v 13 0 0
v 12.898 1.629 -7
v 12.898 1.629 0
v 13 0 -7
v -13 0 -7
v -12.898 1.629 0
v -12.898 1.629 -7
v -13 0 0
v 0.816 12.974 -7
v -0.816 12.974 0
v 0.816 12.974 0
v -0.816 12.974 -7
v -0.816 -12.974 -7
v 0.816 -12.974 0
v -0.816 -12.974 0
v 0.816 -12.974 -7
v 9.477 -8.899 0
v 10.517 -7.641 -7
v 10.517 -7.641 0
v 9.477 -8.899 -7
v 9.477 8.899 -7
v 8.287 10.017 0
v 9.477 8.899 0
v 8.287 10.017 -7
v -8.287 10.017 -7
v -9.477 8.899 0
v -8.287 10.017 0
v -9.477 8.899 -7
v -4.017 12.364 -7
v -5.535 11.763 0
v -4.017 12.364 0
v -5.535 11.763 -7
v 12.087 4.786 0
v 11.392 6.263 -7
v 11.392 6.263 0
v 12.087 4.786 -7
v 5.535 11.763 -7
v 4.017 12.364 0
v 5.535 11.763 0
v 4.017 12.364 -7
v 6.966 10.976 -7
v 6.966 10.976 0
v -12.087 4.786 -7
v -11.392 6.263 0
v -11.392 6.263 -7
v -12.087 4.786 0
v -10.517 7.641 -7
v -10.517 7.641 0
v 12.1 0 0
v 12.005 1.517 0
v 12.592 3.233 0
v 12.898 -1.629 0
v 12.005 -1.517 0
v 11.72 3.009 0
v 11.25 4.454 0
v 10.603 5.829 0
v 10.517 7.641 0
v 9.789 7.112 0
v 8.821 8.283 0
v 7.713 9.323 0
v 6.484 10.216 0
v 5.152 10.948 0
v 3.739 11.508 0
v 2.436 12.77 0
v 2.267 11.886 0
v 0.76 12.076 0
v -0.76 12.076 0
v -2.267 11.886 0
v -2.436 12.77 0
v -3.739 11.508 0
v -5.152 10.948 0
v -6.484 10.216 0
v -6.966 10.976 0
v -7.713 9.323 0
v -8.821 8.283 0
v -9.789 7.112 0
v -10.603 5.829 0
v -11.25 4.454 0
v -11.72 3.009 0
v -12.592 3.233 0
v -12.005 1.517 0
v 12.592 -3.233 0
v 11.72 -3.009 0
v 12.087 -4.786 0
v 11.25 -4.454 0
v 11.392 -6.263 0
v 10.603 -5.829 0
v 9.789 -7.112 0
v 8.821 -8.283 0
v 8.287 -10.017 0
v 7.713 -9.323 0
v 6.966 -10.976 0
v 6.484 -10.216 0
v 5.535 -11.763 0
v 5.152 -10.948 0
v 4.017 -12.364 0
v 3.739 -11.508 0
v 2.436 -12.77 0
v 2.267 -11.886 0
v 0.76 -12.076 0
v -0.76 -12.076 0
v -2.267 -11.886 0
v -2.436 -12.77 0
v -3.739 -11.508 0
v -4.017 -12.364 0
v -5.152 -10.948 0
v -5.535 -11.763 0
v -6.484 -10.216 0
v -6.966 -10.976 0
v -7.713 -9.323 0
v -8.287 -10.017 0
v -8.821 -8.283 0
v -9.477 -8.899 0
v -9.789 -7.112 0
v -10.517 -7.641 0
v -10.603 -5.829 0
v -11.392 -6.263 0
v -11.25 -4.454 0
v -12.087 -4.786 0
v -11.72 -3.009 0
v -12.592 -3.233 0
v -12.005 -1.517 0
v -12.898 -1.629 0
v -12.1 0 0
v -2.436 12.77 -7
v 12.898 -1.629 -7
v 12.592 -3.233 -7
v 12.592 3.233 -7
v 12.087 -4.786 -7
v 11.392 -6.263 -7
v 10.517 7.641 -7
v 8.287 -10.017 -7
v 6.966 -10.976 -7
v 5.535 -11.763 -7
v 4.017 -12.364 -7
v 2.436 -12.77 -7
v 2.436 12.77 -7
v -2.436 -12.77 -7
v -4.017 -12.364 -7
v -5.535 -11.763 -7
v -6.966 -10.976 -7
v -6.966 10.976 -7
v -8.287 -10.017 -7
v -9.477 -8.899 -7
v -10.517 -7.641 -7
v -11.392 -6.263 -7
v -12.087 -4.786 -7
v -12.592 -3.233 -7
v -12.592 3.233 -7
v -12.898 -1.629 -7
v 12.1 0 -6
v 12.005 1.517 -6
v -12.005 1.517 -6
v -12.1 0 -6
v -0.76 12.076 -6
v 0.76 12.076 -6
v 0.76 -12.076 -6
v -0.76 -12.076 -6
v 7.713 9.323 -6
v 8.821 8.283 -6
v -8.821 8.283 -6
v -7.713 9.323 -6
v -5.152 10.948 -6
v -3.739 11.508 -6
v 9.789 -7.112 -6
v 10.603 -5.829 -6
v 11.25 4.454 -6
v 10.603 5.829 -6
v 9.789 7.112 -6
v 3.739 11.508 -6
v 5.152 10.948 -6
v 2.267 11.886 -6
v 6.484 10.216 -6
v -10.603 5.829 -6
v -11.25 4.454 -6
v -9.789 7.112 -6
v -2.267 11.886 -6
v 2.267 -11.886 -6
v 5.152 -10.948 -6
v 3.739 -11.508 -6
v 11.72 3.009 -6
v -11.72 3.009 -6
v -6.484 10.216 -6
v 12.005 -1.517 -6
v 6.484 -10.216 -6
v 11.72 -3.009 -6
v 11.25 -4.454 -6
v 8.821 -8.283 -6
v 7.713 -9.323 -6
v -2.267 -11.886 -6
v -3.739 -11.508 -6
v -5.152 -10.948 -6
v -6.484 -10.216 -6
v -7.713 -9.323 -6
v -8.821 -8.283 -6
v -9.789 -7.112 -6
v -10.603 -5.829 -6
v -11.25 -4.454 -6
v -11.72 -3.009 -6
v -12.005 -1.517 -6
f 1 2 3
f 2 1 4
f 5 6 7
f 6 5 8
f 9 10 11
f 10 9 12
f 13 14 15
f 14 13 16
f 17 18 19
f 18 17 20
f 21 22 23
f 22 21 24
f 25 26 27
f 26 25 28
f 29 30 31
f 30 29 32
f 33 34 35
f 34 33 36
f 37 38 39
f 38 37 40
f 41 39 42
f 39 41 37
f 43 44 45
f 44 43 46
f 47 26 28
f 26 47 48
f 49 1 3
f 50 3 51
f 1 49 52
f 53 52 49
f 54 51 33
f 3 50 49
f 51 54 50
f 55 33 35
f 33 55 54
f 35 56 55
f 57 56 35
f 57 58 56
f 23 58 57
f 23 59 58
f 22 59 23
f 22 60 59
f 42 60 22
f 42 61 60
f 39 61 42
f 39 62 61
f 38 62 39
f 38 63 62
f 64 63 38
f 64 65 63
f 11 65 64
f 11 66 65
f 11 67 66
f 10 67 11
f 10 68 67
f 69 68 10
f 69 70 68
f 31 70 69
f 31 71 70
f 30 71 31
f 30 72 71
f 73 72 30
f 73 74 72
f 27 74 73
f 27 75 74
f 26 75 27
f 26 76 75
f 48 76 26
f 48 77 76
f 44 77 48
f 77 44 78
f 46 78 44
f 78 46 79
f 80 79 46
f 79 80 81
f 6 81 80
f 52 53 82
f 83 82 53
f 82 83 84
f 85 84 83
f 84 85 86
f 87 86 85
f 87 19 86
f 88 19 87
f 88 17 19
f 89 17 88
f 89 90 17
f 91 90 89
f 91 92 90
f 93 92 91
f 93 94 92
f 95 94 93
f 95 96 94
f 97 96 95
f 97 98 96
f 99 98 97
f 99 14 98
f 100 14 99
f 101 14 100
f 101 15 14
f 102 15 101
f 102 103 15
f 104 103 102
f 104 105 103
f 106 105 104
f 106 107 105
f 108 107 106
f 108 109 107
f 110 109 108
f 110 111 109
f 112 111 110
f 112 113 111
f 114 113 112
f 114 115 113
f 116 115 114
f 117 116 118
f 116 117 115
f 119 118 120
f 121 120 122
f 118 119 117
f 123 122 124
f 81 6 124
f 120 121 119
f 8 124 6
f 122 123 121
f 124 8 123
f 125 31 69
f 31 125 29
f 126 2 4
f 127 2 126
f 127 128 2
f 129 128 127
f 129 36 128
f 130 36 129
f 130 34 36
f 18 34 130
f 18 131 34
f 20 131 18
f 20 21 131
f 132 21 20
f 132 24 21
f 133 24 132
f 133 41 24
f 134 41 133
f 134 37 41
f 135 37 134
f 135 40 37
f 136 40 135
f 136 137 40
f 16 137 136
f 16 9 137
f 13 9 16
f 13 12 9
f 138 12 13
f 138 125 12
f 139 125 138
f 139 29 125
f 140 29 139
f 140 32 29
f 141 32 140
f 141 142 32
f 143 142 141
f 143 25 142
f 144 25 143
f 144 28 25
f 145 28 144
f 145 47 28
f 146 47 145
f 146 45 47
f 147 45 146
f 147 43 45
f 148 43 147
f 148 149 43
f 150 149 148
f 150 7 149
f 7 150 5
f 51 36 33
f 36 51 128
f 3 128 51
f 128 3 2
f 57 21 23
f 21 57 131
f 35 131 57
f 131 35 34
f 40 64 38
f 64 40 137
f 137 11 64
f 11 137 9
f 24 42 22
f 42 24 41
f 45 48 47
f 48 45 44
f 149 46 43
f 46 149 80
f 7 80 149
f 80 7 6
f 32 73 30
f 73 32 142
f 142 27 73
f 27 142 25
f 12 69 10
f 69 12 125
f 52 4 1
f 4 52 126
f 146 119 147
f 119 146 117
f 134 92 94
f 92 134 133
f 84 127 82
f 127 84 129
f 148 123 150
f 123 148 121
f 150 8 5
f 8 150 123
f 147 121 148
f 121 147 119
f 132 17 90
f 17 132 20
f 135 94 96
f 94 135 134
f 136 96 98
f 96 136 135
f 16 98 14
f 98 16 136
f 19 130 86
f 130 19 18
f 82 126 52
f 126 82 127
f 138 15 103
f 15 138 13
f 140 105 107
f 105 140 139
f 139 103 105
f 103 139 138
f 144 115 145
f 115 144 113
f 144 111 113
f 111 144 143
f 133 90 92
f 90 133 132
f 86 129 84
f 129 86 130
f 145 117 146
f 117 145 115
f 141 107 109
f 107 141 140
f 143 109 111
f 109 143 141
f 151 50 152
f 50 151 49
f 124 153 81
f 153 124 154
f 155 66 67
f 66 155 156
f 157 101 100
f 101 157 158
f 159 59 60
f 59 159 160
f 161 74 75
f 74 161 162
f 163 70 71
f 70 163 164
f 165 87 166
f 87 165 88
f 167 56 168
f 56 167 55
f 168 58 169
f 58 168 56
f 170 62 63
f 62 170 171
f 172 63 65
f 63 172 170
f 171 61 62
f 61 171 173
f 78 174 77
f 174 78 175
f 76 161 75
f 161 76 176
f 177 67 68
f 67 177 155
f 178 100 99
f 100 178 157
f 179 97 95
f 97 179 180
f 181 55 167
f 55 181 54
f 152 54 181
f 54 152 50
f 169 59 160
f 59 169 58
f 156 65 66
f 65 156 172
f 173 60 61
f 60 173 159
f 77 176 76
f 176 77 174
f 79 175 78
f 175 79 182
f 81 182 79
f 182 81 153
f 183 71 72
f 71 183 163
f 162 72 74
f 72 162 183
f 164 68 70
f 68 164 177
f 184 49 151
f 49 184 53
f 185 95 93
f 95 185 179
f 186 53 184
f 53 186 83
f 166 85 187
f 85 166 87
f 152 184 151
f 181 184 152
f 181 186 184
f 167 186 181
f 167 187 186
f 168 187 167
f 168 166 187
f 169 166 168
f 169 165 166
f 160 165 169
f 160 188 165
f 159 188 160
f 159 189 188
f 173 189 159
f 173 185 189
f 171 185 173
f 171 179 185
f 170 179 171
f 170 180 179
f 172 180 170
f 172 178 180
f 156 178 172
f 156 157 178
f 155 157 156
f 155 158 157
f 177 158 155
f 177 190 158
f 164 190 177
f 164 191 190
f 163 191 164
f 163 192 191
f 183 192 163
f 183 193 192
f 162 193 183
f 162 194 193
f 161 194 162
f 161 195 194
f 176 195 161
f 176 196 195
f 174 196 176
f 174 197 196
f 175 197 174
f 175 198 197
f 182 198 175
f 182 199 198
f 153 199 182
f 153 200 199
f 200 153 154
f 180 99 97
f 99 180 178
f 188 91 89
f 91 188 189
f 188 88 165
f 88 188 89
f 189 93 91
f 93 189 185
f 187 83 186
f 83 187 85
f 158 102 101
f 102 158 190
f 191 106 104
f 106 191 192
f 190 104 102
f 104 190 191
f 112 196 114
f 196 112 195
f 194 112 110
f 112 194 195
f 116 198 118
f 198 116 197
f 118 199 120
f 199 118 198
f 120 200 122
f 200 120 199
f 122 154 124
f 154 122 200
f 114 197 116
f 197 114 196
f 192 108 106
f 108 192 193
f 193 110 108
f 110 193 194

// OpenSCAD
$fn = 50;


difference() {
	union() {
		translate(v = [0, 0, -7.0000000000]) {
			cylinder(h = 7, r = 13.0000000000);
		}
	}
	union() {
		#translate(v = [0, 0, -6.0000000000]) {
			cylinder(h = 6, r = 12.1000000000);
		}
	}
}
